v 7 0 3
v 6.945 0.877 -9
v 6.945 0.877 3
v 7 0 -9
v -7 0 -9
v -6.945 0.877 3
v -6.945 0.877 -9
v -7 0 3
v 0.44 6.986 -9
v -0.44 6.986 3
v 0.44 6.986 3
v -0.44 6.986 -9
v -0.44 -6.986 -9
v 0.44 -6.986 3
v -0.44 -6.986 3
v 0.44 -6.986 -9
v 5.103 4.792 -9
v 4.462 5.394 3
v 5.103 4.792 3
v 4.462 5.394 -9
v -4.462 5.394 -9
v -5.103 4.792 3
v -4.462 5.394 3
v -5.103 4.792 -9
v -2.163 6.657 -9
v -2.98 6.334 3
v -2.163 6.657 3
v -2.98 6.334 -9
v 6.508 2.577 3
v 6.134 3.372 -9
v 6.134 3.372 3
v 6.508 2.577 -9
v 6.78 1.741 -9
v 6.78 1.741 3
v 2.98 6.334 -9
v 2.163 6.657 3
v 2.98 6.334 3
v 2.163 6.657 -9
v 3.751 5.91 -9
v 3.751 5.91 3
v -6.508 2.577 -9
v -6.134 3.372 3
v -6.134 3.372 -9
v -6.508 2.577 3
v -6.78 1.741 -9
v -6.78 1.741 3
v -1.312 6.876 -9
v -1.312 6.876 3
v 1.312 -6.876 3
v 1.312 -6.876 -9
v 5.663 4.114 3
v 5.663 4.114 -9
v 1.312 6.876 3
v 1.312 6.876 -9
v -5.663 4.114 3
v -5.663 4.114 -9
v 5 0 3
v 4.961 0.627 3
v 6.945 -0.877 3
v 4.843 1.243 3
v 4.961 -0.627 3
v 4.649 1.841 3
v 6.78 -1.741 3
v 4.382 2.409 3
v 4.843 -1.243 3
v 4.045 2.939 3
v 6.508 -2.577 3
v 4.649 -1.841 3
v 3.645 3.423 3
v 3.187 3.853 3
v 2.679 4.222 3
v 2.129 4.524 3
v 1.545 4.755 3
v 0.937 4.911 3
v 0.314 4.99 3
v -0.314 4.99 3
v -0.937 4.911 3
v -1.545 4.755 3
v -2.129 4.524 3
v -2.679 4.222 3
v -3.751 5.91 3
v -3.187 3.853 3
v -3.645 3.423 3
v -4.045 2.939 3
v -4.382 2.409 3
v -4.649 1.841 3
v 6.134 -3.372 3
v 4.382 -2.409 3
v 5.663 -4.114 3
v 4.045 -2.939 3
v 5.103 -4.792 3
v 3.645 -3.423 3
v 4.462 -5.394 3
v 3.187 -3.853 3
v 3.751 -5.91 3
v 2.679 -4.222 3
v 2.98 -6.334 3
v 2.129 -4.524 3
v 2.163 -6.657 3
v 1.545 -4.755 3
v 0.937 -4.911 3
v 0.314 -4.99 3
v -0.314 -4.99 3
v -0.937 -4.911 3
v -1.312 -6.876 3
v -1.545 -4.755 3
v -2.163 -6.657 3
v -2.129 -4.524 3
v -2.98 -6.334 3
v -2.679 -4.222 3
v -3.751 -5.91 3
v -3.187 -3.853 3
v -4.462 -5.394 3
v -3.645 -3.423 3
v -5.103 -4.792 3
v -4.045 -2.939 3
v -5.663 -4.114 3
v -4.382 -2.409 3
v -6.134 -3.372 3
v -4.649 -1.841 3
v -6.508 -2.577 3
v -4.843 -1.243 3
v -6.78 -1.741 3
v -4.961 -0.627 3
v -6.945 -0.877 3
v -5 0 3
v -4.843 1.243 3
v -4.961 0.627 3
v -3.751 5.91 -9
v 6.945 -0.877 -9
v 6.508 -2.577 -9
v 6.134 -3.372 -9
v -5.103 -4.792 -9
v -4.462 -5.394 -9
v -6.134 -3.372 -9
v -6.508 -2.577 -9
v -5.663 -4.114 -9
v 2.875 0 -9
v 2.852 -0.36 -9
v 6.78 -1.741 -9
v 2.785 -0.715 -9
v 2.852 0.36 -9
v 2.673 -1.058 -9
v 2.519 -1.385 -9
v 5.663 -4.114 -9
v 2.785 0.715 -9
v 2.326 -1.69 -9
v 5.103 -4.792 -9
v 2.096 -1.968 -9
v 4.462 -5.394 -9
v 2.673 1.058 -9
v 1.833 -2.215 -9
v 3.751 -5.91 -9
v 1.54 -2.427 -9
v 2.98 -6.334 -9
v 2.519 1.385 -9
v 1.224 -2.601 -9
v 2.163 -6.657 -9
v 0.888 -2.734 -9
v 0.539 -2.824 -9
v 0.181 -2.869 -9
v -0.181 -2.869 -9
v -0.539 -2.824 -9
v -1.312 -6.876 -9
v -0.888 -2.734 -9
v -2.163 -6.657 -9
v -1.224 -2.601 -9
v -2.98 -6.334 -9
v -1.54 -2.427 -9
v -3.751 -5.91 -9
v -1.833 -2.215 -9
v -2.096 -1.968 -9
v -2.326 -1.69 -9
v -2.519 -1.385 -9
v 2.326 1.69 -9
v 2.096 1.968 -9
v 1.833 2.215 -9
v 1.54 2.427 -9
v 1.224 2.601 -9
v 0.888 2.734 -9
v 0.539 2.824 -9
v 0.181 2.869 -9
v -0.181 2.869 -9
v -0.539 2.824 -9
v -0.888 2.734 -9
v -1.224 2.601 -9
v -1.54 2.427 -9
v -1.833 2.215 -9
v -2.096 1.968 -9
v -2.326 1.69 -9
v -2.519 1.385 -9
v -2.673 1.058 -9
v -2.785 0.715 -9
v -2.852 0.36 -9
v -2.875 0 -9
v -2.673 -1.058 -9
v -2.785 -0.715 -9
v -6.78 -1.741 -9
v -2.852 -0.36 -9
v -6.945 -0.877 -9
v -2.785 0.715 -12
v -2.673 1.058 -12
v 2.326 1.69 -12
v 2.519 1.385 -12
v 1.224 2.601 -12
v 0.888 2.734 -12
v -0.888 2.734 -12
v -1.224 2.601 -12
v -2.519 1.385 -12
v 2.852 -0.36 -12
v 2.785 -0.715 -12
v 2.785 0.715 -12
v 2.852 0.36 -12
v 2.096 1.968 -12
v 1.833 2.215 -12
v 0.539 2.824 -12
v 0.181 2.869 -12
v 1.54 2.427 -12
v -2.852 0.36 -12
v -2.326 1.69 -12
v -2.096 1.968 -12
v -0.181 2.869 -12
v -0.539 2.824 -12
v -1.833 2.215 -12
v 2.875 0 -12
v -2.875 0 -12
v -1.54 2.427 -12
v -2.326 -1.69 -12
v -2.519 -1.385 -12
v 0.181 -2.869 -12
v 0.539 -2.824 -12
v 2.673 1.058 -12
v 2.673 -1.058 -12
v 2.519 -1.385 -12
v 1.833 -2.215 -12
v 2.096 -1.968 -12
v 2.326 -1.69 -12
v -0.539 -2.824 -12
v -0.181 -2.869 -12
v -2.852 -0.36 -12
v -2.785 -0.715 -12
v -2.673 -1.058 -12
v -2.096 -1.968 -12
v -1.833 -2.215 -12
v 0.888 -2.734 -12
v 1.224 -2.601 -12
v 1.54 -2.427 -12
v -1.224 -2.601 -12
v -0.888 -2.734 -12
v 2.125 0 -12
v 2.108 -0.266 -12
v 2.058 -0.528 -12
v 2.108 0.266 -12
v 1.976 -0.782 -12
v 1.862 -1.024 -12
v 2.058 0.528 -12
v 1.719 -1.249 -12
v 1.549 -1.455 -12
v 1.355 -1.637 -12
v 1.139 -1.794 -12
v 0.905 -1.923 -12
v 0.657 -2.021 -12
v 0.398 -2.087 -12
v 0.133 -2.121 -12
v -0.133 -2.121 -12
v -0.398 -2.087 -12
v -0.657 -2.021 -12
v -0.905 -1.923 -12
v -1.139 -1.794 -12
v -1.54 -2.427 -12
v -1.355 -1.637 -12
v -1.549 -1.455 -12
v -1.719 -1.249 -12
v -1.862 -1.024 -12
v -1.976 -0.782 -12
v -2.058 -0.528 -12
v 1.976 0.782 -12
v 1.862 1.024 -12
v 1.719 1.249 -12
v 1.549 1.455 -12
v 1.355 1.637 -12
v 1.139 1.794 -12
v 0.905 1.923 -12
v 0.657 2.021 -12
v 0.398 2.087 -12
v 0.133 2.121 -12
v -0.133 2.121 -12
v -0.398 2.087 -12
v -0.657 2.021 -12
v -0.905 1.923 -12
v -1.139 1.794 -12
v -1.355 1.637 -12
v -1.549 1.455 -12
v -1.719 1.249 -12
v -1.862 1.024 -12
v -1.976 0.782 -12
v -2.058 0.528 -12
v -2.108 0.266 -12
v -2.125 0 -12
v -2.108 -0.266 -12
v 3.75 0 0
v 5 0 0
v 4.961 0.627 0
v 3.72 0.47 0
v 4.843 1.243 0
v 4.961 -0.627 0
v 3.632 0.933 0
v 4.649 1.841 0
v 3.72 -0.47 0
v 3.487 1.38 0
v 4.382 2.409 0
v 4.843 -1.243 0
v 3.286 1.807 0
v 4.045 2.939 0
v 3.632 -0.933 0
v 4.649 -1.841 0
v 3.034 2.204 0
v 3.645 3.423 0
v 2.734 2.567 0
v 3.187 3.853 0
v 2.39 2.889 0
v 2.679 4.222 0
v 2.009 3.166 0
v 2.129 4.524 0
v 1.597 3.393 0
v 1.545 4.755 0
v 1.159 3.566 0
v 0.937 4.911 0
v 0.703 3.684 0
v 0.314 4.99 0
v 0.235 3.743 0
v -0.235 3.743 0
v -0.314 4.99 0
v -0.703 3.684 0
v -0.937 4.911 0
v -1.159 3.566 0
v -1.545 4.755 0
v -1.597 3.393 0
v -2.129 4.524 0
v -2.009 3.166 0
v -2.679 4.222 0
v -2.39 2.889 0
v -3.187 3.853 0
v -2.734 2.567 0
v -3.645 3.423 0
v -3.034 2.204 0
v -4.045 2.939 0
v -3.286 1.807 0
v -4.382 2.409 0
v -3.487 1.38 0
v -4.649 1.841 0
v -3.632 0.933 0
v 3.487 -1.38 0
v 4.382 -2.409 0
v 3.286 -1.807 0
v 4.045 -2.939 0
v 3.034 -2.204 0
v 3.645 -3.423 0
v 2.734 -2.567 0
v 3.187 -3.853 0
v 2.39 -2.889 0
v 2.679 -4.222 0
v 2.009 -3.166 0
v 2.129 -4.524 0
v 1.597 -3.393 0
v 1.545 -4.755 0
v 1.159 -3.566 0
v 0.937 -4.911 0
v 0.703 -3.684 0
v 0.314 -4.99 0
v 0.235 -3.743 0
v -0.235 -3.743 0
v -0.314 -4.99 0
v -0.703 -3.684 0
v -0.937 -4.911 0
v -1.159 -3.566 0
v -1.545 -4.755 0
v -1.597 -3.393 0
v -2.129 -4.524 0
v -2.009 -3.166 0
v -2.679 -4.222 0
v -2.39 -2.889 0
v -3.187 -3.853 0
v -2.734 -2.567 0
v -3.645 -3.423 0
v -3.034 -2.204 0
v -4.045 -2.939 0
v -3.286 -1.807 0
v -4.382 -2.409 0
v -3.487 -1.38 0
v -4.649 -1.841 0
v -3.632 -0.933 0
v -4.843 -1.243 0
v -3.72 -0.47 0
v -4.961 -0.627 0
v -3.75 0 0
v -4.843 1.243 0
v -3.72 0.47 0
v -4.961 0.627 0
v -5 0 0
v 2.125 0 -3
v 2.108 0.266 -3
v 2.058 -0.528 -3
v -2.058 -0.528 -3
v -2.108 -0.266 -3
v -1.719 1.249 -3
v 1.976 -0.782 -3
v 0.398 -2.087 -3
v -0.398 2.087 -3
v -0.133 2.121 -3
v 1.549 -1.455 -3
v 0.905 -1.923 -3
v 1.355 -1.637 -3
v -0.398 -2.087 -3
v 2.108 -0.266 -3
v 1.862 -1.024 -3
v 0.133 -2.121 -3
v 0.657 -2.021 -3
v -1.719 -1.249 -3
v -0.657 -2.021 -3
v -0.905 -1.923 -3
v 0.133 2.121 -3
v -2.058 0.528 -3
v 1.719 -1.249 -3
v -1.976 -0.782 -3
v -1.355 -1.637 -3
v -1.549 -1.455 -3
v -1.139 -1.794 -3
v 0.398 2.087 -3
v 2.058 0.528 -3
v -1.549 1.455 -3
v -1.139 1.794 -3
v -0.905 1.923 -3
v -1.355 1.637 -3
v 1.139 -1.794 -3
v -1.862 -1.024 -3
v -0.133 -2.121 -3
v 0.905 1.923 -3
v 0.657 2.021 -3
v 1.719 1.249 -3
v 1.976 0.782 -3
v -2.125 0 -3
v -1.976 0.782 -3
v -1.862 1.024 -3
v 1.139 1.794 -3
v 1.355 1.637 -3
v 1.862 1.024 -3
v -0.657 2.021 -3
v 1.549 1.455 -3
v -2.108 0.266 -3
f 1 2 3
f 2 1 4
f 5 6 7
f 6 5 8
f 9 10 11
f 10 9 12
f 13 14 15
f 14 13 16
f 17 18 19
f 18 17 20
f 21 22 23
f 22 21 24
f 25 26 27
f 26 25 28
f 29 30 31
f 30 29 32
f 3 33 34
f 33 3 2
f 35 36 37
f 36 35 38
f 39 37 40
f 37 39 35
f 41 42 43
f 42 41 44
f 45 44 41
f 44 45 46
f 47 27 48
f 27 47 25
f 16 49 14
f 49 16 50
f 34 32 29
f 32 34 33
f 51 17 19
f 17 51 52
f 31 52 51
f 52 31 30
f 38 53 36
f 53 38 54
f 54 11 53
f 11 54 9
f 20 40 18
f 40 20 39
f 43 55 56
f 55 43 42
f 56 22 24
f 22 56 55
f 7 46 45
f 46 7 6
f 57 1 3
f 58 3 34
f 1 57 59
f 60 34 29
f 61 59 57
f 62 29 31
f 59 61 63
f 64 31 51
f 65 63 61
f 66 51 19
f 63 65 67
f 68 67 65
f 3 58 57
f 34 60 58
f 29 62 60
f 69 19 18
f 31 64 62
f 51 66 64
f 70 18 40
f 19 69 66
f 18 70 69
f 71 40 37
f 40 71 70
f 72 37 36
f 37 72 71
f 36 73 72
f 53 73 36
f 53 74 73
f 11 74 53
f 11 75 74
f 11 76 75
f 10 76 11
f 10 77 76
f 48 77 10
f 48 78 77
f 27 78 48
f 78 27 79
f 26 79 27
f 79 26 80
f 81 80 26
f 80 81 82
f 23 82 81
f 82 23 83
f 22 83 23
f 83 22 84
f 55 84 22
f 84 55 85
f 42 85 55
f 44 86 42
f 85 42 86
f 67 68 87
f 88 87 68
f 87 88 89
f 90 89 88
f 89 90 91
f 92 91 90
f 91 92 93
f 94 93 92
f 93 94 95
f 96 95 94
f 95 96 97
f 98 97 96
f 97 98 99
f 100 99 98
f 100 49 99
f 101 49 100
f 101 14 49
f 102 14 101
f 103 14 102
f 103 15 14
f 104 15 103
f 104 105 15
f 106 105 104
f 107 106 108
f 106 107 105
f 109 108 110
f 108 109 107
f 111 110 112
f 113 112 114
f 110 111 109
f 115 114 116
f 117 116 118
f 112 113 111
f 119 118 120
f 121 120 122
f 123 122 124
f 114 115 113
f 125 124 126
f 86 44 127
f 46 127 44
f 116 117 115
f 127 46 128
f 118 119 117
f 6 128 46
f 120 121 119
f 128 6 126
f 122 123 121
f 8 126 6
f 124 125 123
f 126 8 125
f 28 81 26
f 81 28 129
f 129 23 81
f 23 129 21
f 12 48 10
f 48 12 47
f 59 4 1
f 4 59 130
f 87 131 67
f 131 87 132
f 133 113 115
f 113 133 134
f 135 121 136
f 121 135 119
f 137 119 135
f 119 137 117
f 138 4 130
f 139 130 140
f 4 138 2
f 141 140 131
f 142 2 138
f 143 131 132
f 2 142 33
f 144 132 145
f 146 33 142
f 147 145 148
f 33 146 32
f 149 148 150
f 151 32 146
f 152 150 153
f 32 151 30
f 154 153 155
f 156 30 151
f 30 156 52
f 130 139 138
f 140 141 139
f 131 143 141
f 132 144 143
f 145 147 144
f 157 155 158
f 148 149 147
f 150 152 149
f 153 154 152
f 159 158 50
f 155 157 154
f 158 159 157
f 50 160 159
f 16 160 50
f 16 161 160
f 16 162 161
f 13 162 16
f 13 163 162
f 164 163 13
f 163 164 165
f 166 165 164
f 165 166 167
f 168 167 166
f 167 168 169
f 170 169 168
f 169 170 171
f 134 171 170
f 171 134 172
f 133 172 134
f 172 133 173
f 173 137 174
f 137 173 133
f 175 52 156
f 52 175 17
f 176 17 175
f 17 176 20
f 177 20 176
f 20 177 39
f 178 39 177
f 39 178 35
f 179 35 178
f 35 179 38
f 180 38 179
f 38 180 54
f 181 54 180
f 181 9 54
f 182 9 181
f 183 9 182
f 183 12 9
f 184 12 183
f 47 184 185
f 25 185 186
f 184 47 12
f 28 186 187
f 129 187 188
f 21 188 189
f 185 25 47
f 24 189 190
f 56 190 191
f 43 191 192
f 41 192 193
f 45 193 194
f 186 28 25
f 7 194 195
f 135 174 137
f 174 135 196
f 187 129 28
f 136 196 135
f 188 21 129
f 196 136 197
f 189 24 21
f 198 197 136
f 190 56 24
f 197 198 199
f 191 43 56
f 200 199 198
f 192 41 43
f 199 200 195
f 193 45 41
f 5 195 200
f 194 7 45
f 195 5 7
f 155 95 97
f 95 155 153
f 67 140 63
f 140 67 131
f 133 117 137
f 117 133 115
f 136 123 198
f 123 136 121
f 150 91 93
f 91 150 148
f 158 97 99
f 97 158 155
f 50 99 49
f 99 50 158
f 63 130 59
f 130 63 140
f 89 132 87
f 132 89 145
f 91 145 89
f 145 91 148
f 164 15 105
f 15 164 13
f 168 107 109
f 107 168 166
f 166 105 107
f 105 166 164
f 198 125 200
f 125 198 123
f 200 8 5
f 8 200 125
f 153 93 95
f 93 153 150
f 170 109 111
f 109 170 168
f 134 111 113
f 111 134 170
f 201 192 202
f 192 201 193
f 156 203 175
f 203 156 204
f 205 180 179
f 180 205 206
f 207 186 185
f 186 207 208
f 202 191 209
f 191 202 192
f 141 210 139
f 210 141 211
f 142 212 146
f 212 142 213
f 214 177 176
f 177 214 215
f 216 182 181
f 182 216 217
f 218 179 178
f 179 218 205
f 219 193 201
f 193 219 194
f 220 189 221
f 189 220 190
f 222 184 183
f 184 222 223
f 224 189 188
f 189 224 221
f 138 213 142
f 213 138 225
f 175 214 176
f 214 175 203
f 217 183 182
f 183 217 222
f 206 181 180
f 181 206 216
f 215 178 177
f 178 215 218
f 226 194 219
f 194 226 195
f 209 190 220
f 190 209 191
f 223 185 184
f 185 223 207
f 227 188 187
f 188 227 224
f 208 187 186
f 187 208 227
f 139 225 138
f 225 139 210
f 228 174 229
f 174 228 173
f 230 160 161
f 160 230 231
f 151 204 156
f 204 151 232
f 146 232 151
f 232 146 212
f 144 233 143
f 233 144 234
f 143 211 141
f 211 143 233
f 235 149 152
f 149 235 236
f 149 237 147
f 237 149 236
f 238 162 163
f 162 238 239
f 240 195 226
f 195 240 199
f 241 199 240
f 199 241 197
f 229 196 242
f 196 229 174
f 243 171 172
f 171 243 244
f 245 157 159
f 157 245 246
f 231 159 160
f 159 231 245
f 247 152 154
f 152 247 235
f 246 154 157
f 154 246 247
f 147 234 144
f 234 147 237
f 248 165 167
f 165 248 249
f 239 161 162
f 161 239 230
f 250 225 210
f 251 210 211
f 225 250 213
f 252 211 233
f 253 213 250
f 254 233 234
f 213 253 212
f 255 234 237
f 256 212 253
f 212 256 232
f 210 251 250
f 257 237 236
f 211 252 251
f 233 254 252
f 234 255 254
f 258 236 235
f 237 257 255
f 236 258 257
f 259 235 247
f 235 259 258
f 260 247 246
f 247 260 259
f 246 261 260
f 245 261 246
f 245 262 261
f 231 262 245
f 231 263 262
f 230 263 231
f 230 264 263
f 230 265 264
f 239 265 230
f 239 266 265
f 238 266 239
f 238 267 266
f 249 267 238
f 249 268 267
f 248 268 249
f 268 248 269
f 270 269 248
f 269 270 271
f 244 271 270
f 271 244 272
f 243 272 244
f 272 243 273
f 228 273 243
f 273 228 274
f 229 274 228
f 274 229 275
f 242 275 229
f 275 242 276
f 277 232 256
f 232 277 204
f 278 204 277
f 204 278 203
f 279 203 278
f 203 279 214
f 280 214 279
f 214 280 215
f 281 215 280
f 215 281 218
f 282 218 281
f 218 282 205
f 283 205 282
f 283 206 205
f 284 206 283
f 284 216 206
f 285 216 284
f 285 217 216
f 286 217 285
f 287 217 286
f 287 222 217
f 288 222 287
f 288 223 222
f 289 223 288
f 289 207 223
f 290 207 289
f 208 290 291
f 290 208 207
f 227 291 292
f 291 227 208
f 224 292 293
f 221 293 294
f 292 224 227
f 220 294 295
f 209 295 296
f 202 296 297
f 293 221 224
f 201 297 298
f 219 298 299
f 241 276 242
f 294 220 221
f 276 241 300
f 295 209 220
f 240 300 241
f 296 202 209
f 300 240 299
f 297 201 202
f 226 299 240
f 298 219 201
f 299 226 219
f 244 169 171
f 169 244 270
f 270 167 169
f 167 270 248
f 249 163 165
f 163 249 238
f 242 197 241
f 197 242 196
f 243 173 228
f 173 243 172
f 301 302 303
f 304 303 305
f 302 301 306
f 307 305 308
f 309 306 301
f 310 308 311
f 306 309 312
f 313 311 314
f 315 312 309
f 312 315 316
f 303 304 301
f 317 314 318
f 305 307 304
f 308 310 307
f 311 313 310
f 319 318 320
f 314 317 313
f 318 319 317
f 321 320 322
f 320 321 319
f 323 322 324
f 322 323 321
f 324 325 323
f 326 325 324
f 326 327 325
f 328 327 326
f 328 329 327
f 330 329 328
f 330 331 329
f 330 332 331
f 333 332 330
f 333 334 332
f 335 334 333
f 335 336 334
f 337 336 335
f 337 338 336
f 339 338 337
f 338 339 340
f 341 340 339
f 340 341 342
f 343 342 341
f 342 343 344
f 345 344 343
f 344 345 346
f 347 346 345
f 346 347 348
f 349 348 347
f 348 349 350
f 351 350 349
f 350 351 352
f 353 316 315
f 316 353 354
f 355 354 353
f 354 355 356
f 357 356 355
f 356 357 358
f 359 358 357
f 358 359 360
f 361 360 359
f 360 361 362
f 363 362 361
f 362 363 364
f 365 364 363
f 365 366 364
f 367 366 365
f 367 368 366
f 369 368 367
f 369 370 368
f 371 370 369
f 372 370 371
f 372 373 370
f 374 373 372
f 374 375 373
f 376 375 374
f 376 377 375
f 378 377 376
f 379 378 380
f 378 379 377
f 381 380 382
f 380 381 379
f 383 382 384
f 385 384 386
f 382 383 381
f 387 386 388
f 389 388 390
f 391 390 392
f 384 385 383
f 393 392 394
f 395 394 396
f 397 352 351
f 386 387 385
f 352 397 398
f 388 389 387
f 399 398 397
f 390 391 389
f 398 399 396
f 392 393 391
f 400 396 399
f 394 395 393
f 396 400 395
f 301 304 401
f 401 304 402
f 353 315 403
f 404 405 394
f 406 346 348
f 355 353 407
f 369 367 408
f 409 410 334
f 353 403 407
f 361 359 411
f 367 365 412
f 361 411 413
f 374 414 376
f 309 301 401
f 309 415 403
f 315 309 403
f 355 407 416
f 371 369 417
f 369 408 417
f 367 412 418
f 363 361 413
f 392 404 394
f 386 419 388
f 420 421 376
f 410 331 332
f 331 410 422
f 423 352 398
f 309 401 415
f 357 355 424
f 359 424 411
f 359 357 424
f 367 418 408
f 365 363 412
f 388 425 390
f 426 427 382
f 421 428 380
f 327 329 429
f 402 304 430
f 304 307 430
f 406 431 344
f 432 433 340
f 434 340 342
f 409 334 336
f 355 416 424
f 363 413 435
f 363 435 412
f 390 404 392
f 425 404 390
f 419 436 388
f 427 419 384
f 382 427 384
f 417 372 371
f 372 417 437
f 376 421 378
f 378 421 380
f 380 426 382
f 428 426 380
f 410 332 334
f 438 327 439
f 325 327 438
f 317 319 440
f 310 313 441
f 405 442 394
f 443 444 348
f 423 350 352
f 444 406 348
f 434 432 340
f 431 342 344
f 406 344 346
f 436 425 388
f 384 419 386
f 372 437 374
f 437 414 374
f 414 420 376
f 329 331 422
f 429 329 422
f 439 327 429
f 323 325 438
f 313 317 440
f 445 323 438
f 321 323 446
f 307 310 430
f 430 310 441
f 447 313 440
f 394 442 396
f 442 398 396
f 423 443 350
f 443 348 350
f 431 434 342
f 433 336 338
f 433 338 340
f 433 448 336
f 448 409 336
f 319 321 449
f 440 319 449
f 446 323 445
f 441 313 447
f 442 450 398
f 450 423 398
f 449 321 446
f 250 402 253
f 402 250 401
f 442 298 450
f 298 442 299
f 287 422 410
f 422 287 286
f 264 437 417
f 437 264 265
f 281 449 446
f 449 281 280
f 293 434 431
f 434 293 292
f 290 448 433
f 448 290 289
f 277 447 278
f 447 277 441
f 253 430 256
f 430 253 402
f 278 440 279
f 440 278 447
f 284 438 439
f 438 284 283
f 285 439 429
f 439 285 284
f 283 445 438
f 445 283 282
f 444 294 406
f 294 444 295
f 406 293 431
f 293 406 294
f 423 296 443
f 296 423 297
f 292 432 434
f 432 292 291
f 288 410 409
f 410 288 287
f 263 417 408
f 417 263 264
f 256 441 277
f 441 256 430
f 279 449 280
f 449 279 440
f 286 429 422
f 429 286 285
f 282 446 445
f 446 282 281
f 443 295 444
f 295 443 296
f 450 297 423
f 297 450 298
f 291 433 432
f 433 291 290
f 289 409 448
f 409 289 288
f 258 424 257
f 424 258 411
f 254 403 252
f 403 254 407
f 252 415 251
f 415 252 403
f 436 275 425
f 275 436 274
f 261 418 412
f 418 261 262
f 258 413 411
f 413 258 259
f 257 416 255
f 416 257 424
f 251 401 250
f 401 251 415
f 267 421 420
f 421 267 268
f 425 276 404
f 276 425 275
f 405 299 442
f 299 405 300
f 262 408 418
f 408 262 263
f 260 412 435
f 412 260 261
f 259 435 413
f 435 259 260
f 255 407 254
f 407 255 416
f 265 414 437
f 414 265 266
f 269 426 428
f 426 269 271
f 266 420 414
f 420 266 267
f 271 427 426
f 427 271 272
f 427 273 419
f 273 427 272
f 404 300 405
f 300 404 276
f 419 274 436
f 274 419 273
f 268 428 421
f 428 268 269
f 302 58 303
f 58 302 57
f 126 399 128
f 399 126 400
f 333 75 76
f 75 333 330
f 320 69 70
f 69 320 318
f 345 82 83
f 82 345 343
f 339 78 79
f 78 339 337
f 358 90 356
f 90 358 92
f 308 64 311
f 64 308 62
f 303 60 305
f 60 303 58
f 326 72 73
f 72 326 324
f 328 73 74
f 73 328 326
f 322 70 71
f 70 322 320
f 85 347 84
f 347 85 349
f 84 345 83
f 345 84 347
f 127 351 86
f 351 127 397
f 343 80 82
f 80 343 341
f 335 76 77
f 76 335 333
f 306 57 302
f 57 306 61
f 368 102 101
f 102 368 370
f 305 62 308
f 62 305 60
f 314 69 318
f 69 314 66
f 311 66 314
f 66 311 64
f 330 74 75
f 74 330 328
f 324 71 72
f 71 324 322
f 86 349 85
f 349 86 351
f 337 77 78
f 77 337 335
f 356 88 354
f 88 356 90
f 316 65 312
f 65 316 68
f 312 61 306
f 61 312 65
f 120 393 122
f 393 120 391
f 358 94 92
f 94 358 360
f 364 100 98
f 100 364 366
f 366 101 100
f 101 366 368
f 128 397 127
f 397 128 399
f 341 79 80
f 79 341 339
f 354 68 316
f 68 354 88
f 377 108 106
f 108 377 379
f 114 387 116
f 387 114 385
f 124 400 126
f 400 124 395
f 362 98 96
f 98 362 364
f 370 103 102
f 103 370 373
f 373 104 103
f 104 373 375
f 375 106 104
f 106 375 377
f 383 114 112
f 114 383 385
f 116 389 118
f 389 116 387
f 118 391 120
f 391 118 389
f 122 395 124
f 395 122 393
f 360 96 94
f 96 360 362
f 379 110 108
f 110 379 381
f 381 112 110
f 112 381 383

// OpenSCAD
$fn = 50;


difference() {
	union() {
		translate(v = [0, 0, -9.0000000000]) {
			cylinder(h = 12, r = 7.0000000000);
		}
		#translate(v = [0, 0, -12.0000000000]) {
			cylinder(h = 12, r = 2.8750000000);
		}
	}
	union() {
		translate(v = [0, 0, 0]) {
			rotate(a = [0, 0, 0]) {
				difference() {
					union() {
						translate(v = [0, 0, -12.0000000000]) {
							cylinder(h = 12, r = 2.0000000000);
						}
						translate(v = [0, 0, -3]) {
							cylinder(h = 3, r1 = 2.1250000000, r2 = 3.7500000000);
						}
						translate(v = [0, 0, -12.0000000000]) {
							cylinder(h = 12, r = 2.1250000000);
						}
						translate(v = [0, 0, -12.0000000000]) {
							cylinder(h = 12, r = 2.0000000000);
						}
					}
					union();
				}
			}
		}
		#cylinder(h = 3, r = 5.0000000000);
	}
}
